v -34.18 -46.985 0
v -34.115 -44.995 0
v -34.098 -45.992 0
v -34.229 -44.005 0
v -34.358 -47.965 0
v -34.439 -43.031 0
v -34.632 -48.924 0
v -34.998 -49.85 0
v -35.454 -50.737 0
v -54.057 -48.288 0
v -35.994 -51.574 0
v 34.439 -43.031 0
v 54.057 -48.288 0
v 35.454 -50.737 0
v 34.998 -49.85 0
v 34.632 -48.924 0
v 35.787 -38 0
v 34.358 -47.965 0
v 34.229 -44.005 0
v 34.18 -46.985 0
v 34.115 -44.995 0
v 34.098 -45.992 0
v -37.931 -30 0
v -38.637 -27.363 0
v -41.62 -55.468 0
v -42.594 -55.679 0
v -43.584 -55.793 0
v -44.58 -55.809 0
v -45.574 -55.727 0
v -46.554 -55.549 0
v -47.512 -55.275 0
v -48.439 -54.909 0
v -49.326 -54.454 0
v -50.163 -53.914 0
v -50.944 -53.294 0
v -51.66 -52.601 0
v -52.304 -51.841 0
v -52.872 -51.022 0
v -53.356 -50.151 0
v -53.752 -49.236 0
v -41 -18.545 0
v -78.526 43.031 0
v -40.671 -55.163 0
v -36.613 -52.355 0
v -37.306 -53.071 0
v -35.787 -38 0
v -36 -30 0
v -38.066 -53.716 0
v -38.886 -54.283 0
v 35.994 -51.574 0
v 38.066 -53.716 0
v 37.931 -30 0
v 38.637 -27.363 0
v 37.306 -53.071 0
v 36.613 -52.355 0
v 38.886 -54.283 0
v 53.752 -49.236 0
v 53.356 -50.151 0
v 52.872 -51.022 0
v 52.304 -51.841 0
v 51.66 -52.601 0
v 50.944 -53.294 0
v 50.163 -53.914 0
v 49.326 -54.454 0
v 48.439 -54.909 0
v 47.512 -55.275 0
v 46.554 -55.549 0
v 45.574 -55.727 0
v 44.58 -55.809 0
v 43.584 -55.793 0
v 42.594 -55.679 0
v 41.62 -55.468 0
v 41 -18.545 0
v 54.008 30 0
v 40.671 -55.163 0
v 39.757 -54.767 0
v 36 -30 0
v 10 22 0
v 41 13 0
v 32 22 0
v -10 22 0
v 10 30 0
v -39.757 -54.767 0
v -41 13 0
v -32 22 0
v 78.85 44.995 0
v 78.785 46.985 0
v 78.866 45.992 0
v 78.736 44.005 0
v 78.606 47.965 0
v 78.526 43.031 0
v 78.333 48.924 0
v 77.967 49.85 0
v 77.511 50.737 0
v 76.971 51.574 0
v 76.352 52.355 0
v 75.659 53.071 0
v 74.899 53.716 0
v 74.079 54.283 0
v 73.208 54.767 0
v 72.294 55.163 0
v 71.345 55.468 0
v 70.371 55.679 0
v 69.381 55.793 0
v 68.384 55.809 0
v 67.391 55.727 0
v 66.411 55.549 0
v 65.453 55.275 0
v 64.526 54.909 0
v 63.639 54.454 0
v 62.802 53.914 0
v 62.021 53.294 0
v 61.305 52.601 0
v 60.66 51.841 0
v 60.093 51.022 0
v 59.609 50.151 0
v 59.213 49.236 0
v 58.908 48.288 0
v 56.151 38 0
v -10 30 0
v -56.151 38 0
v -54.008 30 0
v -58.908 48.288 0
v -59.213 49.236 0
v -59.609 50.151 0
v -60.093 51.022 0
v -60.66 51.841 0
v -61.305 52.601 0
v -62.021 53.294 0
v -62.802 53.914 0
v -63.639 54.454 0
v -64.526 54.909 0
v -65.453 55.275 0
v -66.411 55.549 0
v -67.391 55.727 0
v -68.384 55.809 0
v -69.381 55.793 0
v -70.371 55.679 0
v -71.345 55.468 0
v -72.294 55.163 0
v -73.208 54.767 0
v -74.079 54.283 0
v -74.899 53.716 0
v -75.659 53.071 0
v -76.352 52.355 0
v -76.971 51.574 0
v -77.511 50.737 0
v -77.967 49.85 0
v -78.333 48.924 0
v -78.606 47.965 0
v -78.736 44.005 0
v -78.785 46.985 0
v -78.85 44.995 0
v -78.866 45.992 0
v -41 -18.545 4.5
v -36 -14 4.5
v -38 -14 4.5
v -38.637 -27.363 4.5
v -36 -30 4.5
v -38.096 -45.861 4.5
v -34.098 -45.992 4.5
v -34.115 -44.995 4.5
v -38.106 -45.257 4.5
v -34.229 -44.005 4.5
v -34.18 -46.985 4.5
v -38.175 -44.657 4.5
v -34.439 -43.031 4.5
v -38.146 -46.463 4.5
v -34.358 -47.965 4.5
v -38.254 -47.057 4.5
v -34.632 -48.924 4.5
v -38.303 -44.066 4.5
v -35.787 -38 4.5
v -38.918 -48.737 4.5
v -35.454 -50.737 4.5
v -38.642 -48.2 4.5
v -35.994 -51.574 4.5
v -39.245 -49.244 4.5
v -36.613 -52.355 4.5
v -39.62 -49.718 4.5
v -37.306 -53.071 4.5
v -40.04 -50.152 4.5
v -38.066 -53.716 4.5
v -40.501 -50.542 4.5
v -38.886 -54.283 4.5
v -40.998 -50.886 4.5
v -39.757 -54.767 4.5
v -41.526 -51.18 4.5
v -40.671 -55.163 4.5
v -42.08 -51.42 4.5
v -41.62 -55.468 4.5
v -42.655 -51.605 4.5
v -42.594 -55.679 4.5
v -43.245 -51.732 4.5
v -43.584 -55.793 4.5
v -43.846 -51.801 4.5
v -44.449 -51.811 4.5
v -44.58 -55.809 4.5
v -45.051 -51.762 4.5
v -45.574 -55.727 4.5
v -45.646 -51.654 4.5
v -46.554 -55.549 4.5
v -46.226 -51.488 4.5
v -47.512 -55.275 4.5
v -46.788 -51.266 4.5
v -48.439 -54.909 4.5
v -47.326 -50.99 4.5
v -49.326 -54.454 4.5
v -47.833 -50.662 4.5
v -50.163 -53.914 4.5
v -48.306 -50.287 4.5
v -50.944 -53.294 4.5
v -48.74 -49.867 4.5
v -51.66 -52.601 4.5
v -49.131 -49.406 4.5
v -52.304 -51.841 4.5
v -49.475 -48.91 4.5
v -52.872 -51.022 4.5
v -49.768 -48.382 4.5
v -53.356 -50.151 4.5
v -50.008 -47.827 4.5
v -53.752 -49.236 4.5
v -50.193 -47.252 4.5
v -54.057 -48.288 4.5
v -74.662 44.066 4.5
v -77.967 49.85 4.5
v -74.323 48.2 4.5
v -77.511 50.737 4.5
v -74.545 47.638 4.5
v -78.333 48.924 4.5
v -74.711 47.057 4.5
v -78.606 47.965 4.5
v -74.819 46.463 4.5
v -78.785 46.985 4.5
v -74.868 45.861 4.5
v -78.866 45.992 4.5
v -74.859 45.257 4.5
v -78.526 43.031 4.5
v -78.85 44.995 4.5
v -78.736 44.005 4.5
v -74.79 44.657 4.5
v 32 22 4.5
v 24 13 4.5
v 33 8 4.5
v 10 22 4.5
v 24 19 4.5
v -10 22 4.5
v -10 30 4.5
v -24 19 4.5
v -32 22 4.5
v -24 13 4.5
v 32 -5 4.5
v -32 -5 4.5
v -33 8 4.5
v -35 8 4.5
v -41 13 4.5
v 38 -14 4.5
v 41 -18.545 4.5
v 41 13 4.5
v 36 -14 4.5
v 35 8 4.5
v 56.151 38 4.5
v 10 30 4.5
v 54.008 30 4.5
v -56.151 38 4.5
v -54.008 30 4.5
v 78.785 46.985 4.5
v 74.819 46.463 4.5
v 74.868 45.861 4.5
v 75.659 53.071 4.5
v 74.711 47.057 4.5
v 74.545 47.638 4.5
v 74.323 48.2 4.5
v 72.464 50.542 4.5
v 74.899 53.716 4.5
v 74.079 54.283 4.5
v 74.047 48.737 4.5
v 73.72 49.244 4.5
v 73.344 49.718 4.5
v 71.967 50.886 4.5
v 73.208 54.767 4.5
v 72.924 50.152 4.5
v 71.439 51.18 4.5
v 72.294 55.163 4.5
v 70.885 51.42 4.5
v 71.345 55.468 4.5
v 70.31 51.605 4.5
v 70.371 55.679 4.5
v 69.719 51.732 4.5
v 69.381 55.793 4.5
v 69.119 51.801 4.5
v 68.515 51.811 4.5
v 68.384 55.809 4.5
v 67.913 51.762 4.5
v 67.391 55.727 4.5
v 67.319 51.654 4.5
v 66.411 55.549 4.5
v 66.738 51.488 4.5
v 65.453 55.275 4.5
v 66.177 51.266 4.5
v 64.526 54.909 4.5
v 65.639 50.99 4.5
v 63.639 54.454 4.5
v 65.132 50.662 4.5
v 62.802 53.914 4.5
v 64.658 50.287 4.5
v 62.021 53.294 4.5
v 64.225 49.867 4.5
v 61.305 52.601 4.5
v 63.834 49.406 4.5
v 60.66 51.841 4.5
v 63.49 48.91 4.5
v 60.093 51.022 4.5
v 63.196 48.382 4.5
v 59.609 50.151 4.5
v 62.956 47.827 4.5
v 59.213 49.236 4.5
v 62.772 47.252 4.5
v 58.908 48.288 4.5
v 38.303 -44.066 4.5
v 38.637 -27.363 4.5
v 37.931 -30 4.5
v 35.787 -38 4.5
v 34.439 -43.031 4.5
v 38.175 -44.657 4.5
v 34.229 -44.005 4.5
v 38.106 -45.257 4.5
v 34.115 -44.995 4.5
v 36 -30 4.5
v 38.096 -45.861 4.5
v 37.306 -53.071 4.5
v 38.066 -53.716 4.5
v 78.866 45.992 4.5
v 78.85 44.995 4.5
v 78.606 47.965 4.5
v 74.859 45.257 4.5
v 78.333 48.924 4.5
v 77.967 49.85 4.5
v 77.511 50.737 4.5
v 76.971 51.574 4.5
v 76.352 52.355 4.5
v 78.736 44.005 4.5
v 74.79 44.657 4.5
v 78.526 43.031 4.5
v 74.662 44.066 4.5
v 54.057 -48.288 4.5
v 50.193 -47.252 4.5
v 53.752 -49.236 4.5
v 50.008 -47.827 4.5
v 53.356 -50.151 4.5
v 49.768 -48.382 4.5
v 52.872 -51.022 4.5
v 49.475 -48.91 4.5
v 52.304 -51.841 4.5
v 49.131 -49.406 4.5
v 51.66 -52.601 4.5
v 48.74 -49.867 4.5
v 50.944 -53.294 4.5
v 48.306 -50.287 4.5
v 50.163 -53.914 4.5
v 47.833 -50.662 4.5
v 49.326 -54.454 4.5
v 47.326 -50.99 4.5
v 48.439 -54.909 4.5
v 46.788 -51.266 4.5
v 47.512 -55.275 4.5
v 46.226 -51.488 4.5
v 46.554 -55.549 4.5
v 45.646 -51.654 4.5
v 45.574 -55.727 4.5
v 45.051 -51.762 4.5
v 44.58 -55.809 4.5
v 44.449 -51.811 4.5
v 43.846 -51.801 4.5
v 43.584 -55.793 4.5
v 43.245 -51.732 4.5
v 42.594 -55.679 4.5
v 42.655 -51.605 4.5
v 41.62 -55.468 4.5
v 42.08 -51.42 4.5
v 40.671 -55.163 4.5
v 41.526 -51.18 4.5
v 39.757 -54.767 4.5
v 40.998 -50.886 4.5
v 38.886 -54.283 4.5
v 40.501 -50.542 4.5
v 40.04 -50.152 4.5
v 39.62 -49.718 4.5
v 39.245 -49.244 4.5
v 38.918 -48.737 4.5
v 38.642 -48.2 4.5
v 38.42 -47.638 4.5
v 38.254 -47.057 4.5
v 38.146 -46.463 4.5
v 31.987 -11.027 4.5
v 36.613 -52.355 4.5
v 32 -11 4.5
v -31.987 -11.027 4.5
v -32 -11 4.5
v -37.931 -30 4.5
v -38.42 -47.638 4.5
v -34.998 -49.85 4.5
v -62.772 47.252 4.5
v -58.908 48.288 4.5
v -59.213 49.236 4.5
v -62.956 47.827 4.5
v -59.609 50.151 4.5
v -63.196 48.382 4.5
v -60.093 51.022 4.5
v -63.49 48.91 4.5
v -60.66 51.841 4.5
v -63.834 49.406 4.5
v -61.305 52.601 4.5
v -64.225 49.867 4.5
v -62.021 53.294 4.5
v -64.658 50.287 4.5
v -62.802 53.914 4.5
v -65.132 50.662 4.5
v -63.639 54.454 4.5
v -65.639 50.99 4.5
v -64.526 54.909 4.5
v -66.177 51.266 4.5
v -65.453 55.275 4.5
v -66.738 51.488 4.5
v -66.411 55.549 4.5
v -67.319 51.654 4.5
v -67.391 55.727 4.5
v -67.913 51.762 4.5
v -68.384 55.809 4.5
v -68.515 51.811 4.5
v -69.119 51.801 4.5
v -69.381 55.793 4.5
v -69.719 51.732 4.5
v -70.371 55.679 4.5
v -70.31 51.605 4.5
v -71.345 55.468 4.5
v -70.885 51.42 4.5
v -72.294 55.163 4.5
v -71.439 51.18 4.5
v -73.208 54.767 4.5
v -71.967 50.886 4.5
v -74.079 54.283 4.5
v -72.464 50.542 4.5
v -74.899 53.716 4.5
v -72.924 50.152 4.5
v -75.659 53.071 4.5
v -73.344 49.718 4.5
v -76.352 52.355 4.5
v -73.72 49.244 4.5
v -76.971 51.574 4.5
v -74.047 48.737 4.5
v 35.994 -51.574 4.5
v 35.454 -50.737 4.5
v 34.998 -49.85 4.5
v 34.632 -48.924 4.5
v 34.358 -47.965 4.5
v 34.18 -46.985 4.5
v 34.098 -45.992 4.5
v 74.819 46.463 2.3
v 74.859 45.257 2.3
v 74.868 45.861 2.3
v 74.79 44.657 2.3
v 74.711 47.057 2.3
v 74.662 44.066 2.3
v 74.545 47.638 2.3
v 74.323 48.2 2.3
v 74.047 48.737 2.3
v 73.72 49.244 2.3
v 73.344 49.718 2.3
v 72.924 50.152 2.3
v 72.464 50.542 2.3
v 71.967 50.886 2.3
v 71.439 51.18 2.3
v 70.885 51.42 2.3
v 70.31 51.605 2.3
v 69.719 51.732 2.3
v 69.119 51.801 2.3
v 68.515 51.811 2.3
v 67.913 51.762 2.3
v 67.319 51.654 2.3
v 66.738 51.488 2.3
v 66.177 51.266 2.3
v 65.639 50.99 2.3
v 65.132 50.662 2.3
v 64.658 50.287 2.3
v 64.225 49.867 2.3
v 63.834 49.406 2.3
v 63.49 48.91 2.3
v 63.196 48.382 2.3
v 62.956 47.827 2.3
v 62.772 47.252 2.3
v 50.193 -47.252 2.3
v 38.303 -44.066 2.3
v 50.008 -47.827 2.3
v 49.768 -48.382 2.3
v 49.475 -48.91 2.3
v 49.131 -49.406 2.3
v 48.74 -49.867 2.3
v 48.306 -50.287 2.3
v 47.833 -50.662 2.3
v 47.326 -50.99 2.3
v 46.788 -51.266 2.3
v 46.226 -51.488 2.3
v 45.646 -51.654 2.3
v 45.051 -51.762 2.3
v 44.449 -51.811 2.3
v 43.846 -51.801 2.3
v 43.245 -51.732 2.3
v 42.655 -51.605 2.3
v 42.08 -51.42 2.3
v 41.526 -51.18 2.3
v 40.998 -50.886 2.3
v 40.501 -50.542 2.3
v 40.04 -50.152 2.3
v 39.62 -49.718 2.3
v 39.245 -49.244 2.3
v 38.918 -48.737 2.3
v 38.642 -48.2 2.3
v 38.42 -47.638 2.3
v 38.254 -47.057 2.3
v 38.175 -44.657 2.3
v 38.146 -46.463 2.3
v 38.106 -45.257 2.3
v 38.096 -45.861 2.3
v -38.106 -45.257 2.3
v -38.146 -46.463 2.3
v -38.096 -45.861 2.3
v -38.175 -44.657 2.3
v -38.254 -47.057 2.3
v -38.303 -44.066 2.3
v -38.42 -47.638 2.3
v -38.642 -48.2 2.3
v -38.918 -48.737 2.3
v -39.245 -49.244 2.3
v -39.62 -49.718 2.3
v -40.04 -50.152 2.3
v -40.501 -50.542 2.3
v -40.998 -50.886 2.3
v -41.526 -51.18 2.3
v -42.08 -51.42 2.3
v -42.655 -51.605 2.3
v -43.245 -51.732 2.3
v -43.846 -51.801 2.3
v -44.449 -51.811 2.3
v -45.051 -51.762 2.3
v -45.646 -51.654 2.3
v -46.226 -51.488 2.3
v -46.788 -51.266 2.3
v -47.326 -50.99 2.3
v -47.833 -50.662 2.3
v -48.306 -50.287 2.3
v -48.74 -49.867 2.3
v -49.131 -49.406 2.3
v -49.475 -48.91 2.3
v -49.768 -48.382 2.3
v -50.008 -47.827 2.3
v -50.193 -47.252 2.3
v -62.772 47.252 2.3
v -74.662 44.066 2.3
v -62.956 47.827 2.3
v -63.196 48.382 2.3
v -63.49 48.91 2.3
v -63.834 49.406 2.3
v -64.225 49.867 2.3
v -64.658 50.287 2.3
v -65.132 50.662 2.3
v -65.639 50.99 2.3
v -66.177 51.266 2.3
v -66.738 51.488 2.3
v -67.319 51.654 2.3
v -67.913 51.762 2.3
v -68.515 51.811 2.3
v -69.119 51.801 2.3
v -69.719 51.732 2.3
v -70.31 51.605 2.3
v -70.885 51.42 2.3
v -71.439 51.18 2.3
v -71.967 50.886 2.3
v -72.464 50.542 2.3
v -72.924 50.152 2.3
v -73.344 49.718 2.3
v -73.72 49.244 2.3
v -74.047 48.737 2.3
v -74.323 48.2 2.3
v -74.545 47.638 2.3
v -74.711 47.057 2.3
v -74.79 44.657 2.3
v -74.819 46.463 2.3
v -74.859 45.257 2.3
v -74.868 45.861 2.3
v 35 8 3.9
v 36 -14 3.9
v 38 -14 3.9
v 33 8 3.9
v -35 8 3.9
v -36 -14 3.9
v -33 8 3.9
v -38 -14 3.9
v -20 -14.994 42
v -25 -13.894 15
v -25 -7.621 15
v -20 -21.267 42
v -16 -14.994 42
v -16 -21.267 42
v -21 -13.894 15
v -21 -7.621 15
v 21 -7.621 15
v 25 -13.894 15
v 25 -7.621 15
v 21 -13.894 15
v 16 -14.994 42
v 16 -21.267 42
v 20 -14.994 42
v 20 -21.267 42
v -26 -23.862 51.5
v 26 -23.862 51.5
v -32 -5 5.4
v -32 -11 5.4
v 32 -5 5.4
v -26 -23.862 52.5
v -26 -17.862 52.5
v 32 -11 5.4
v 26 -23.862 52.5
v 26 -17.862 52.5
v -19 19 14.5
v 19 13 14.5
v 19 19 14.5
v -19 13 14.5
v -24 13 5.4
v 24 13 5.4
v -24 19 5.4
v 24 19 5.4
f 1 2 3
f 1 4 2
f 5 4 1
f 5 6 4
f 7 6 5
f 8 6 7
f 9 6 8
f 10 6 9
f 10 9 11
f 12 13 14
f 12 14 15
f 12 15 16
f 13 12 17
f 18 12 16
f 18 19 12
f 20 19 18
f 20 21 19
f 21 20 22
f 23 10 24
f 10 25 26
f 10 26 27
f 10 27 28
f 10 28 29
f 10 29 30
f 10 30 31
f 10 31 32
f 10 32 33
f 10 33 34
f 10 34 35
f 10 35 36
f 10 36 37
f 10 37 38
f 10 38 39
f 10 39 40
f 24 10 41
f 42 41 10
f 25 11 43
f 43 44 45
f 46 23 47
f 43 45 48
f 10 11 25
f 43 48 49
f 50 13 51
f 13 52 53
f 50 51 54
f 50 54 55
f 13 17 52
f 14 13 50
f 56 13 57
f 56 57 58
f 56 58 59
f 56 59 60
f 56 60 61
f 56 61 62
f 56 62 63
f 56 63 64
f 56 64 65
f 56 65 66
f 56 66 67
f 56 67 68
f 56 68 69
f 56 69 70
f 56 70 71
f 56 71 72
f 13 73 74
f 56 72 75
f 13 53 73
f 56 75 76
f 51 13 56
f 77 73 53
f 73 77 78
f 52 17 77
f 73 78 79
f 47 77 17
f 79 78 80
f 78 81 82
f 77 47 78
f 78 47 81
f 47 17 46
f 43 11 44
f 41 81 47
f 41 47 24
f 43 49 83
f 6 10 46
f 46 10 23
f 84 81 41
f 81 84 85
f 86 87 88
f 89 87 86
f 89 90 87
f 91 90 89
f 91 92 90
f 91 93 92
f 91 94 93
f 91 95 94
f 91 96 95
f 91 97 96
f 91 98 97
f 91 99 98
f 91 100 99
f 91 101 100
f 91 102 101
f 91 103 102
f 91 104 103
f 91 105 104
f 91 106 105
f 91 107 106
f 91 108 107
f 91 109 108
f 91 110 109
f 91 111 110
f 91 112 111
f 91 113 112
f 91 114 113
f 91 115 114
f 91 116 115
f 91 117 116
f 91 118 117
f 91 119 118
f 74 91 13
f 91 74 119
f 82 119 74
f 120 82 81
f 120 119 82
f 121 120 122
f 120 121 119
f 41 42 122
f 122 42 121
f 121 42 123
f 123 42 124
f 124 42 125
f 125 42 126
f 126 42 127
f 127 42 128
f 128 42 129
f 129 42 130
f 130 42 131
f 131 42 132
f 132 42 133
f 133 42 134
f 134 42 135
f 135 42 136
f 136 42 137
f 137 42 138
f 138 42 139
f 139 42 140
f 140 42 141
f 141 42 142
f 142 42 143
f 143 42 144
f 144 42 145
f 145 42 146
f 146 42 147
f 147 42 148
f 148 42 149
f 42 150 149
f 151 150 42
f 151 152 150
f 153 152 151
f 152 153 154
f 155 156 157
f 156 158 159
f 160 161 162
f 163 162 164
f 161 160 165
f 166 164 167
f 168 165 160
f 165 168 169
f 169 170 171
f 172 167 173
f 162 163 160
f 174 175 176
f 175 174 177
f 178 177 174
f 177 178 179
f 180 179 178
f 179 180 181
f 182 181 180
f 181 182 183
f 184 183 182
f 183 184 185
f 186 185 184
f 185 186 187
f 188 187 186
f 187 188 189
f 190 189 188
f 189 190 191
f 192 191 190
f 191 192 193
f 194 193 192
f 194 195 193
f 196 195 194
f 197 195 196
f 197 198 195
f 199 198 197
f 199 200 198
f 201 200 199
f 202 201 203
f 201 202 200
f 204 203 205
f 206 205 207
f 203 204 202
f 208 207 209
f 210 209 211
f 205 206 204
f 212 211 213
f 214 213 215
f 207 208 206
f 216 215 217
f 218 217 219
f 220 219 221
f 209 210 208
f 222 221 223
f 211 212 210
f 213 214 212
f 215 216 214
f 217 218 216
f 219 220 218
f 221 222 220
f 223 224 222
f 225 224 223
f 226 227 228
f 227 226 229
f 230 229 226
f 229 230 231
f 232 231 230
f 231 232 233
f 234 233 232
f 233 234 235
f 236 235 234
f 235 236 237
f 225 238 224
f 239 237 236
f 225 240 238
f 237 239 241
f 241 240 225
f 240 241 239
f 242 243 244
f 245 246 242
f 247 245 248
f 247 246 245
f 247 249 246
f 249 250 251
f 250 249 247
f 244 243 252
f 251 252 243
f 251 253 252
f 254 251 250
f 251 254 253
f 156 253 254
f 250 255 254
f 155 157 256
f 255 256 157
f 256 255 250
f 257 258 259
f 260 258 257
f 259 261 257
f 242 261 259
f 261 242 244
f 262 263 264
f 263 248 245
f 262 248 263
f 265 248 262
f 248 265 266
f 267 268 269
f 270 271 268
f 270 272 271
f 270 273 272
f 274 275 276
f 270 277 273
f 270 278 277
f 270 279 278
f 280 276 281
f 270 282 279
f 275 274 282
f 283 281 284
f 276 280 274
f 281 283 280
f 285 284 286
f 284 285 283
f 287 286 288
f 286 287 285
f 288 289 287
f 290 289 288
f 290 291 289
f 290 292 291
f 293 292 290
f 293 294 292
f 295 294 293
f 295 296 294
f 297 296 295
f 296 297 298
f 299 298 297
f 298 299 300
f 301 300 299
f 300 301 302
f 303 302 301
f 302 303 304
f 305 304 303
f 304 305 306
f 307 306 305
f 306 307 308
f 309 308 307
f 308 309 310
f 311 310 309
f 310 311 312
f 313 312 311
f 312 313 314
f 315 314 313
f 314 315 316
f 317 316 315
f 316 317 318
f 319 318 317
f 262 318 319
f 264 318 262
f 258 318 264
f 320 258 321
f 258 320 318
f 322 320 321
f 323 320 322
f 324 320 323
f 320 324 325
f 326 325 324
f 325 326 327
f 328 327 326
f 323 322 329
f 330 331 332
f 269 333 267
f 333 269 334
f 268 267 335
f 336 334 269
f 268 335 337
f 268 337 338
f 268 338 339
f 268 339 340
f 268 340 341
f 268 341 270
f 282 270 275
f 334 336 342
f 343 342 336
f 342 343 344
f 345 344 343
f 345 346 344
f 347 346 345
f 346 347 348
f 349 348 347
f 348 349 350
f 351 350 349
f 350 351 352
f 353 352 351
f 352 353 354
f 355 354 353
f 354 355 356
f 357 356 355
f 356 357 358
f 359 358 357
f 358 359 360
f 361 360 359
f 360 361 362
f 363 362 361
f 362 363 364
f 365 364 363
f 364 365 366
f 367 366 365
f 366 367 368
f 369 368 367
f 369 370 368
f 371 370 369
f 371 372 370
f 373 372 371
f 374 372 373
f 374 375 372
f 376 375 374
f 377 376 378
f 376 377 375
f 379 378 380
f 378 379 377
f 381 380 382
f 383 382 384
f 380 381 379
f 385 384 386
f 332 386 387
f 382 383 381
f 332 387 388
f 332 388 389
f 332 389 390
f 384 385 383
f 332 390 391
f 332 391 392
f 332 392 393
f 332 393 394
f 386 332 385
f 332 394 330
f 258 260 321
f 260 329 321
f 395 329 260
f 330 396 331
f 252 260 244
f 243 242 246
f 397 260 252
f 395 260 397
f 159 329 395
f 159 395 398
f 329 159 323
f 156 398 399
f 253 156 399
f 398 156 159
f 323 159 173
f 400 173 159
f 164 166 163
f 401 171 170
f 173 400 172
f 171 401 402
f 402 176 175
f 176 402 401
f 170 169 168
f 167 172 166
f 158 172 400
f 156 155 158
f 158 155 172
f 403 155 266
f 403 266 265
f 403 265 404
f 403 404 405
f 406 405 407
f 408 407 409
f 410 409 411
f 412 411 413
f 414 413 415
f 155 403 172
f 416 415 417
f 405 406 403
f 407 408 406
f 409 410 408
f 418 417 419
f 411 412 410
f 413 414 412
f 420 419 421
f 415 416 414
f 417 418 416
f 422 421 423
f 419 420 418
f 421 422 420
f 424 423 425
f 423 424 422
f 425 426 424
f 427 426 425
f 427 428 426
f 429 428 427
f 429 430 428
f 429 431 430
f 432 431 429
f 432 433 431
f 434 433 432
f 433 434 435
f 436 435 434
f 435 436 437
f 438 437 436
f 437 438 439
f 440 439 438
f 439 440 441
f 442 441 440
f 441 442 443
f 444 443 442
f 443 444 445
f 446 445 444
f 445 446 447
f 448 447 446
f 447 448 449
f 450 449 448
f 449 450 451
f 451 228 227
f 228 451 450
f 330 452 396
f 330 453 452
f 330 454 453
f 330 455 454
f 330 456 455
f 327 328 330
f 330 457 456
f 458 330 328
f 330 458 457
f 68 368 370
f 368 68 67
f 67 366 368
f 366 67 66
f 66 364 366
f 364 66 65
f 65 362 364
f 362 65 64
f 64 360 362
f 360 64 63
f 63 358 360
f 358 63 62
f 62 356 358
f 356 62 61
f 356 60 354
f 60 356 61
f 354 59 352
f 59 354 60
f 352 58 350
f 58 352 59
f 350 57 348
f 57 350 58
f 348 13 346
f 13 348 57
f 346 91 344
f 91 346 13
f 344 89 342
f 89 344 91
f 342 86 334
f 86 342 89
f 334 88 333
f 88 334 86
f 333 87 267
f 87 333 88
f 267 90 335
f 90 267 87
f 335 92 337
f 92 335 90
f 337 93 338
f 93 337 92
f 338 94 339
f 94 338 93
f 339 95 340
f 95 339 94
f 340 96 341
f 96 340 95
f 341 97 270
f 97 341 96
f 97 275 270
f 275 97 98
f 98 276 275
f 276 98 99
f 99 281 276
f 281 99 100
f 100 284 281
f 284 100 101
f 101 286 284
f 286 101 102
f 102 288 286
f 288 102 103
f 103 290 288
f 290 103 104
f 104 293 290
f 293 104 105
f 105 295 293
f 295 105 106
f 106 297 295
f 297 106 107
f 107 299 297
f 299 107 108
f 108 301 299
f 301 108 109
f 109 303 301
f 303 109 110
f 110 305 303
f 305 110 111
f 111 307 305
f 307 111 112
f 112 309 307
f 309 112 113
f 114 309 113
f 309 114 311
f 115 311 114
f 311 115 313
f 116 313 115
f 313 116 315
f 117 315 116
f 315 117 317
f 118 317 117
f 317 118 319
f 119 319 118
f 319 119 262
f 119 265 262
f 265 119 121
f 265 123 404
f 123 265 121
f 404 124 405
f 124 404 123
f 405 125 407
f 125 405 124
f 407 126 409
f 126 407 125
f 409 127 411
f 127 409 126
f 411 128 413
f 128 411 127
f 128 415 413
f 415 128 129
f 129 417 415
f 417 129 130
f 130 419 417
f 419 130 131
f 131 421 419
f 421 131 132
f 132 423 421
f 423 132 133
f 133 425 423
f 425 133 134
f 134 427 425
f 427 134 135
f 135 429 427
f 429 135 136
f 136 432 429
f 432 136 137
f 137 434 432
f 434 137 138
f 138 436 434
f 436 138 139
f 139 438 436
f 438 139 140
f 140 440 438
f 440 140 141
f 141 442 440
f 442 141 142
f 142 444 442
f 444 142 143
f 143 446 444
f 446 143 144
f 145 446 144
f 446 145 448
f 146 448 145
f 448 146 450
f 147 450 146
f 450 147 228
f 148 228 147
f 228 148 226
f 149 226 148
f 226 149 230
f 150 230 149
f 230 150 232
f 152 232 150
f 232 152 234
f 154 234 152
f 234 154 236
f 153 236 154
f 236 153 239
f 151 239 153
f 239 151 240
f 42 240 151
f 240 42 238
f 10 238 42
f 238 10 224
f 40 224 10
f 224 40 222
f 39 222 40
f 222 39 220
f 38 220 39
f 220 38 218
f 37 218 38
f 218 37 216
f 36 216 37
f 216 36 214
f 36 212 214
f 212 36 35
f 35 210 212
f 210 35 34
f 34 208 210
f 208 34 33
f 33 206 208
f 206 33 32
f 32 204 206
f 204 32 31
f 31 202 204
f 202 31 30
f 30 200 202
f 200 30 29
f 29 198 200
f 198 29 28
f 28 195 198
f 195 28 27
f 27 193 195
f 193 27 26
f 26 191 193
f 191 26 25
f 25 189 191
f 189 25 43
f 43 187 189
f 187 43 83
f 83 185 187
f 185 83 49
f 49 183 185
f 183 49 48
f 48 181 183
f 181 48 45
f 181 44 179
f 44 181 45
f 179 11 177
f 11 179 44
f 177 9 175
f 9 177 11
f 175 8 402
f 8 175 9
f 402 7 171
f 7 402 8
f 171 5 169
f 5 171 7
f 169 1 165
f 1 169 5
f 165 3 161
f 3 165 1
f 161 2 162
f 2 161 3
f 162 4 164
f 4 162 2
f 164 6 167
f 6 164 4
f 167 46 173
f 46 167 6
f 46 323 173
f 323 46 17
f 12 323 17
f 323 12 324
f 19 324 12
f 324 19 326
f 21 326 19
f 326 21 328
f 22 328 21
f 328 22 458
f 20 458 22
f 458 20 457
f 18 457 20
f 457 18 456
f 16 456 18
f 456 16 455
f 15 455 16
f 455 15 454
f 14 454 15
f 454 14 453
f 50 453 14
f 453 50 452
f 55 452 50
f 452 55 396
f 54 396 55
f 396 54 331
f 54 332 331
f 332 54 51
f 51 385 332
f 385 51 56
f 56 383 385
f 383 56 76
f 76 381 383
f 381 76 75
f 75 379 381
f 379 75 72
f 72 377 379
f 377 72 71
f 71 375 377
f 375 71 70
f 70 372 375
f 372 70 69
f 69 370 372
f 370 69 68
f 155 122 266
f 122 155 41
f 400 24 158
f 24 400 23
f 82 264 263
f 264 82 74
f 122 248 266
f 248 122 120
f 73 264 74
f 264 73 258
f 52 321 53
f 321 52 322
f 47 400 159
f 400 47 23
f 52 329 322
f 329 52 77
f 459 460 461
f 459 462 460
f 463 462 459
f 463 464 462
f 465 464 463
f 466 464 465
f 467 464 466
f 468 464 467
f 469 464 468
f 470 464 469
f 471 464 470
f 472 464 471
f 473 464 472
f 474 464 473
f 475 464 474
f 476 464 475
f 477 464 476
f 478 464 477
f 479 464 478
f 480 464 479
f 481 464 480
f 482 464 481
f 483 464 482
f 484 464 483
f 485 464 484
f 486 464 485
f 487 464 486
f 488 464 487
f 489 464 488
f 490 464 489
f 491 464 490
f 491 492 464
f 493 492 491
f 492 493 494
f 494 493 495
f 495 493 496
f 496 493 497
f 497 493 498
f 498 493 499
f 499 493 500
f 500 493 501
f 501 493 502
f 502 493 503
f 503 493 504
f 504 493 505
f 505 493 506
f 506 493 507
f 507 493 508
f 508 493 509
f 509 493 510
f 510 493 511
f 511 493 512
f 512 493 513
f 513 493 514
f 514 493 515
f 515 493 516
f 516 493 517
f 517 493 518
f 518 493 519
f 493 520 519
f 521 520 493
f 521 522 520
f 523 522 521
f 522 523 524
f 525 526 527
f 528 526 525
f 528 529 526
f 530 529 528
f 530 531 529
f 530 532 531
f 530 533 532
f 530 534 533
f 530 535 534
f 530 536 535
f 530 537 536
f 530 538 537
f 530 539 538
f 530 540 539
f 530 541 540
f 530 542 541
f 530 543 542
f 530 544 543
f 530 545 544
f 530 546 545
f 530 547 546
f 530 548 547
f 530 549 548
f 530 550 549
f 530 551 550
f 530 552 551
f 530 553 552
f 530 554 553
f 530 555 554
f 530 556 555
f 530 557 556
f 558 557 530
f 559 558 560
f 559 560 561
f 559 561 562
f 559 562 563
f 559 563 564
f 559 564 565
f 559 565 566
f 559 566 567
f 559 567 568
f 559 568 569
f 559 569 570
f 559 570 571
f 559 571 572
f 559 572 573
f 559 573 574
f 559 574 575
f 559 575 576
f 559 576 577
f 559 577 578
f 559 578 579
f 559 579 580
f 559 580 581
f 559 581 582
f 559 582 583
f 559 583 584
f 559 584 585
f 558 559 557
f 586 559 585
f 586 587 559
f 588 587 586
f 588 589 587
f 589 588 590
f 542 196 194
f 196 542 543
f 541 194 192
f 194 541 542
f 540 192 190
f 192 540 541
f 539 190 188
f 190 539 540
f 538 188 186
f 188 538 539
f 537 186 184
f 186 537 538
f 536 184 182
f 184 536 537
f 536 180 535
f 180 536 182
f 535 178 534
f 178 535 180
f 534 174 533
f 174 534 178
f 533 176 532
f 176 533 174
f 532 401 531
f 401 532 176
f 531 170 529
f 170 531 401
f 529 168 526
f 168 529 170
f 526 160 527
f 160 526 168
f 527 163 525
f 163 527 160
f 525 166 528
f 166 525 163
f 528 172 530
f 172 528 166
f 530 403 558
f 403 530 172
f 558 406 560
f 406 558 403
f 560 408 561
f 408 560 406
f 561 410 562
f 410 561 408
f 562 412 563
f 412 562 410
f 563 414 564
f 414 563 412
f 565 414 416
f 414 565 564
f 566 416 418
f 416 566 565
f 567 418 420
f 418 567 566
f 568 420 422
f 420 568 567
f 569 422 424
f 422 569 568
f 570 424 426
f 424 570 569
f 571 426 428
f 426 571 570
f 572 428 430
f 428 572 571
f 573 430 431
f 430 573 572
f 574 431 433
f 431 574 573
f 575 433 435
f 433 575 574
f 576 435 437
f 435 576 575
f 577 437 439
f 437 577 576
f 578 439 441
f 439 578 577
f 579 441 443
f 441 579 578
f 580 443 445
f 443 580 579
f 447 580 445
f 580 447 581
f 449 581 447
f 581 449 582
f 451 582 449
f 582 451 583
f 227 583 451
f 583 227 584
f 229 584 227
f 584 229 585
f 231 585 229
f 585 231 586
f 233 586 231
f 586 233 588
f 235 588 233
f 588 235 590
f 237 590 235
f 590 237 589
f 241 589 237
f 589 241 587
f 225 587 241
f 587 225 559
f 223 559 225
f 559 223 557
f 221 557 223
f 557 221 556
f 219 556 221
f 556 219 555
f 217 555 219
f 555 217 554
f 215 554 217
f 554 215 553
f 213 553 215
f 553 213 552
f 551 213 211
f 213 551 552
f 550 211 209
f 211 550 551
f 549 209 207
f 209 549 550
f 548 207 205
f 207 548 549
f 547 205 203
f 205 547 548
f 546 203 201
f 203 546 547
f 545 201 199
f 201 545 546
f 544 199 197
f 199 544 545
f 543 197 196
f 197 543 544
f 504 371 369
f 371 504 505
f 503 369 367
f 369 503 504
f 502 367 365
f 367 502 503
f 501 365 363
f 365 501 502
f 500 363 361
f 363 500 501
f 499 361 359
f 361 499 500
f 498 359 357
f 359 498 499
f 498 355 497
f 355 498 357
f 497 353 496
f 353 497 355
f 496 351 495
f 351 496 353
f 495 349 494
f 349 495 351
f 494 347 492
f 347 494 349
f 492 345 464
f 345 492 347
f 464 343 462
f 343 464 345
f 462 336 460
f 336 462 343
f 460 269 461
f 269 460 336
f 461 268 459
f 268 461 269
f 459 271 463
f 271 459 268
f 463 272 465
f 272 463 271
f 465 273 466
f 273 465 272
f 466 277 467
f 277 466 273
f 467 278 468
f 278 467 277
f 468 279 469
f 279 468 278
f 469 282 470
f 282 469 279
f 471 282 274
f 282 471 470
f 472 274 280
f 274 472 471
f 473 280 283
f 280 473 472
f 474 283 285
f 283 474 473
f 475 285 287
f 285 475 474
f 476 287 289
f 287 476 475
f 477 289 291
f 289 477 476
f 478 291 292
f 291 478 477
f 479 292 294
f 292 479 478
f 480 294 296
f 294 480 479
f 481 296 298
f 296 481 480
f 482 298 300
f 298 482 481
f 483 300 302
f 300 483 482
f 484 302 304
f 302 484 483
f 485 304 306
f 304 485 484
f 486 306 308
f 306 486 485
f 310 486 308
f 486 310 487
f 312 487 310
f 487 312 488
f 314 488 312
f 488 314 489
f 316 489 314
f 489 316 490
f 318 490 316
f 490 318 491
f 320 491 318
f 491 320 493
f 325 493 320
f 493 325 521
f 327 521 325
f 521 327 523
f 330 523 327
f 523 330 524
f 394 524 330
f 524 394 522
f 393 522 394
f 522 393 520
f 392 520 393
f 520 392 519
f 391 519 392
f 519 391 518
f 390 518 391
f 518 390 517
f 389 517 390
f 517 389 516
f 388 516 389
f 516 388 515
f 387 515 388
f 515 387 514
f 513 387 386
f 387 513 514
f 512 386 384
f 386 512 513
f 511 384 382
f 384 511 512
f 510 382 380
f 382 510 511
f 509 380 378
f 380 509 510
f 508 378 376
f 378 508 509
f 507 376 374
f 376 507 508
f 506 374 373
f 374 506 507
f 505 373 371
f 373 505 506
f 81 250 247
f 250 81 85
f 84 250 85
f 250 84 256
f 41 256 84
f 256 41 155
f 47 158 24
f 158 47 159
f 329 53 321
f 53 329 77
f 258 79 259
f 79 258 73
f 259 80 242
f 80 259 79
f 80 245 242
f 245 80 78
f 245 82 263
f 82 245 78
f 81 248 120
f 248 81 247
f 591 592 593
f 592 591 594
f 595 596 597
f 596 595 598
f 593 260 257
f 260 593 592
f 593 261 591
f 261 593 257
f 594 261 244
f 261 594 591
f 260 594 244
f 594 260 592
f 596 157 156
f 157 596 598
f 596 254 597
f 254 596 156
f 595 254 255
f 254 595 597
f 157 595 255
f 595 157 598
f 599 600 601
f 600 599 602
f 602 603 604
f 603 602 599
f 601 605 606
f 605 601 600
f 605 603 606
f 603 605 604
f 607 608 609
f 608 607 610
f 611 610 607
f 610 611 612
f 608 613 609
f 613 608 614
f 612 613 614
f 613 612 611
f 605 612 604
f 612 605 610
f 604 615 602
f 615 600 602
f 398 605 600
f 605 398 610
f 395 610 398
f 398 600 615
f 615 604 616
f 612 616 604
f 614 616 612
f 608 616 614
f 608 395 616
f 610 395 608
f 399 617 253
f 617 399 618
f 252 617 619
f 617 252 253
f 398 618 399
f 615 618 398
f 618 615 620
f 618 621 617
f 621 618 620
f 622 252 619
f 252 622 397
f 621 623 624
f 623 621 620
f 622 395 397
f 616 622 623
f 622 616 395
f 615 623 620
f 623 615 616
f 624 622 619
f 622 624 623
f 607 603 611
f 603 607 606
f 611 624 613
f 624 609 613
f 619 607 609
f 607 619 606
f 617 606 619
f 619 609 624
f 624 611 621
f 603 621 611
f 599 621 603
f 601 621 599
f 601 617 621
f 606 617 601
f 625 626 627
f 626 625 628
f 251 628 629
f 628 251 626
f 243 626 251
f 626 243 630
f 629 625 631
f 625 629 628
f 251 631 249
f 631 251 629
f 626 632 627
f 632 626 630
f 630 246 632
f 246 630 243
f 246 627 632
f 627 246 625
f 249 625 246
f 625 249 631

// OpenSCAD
// MoErgo Go60 Perch - V1.3
// Keyboard positioning base with a centered portrait phone cradle.
//
// Units: mm

// ---------- Measured OEM bottom bar ----------
bar_length = 106.43;
bar_width  = 11.89;

// ---------- Pocket fit ----------
clearance_each_side = 0.21;
pocket_length = bar_length + 2*clearance_each_side;  // 106.85
pocket_width  = bar_width  + 2*clearance_each_side;  // 12.31
pocket_depth  = 2.2;

// ---------- Printed structure ----------
base_thickness = 4.5;
pad_border = 4.0;
rail_width = 8.0;

// ---------- Phone cradle ----------
// The 18 mm slot leaves room for a phone up to 16 mm thick with its case.
phone_width = 82;
phone_slot_depth = 18;
phone_lip_width = 48;
phone_lip_top_width = 38;
phone_lip_thickness = 6;
phone_lip_height = 10;
phone_back_width = 64;
phone_back_top_width = 52;
phone_back_thickness = 6;
phone_back_height = 48;
phone_recline_deg = 15;

// ---------- Positioning ----------
splay_deg = 15;
near_inner_gap = 73.0;
phone_forward = 4.0;

// Crossbar Y locations
rear_rail_y  = 34;
front_rail_y = -34;

// ---------- Derived ----------
pad_length = pocket_length + 2*pad_border;
pad_width  = pocket_width  + 2*pad_border;

near_centerline_gap = near_inner_gap + pocket_width;

s = sin(splay_deg);
left_cx  = -near_centerline_gap/2 - s*pocket_length/2;
right_cx = -left_cx;

// 2D capsule, long axis along local Y
module capsule2d(len, wid) {
    r = wid/2;
    hull() {
        translate([0, -(len/2-r)]) circle(r=r, $fn=64);
        translate([0,  (len/2-r)]) circle(r=r, $fn=64);
    }
}

module pad2d(cx, ang) {
    translate([cx,0])
        rotate(ang)
            capsule2d(pad_length, pad_width);
}

module pocket2d(cx, ang) {
    translate([cx,0])
        rotate(ang)
            capsule2d(pocket_length, pocket_width);
}

// A deliberately over-long rail.
// It runs from the centerline of the left pad to the centerline of the right
// pad, guaranteeing substantial overlap with each angled side pad.
module rail2d(ypos) {
    rail_len = right_cx - left_cx;
    translate([(left_cx + right_cx)/2, ypos])
        square([rail_len, rail_width], center=true);
}

module perch_outline_2d() {
    union() {
        pad2d(left_cx,   splay_deg);
        pad2d(right_cx, -splay_deg);
        rail2d(rear_rail_y);
        rail2d(front_rail_y);
    }
}

module phone_cradle() {
    // Clipped deck corners echo the splayed keyboard pads. The deck joins
    // one rail, and the narrow stem joins the other.
    difference() {
        linear_extrude(height=base_thickness)
            union() {
                polygon([
                    [-phone_width/2+9, -18], [phone_width/2-9, -18],
                    [ phone_width/2, -9],   [phone_width/2, 25+phone_forward],
                    [ phone_width/2-9, 34+phone_forward],
                    [-phone_width/2+9, 34+phone_forward],
                    [-phone_width/2, 25+phone_forward],
                    [-phone_width/2, -9]
                ]);
                translate([-10, front_rail_y]) square([20, 20]);
            }

        // Shallow accents on the shoulders echo the angled backrest slots.
        translate([0, 0, base_thickness-0.6])
            linear_extrude(height=0.7)
                for (side = [-1, 1])
                    scale([side, 1])
                        polygon([[33, -4], [35, -4],
                                 [38, 18], [36, 18]]);
    }

    // Sloped shoulders give the shorter lip a lighter profile.
    hull() {
        translate([-phone_lip_width/2,
                   -phone_slot_depth/2-phone_lip_thickness,
                   base_thickness-0.1])
            cube([phone_lip_width, phone_lip_thickness, 1]);
        translate([-phone_lip_top_width/2,
                   -phone_slot_depth/2-phone_lip_thickness,
                   base_thickness+phone_lip_height-1])
            cube([phone_lip_top_width, phone_lip_thickness, 1]);
    }

    // The tapered backrest keeps a broad center panel for phone support.
    // Angled side slots add detail without weakening its outer edges.
    difference() {
        hull() {
            translate([-phone_back_width/2, phone_slot_depth/2,
                       base_thickness-0.1])
                cube([phone_back_width, phone_back_thickness, 1]);
            translate([-phone_back_top_width/2,
                       phone_slot_depth/2 + tan(phone_recline_deg)*phone_back_height,
                       base_thickness+phone_back_height-1])
                cube([phone_back_top_width, phone_back_thickness, 1]);
        }

        for (side = [-1, 1])
            scale([side, 1, 1])
                translate([0, 40, 0])
                    rotate([90, 0, 0])
                        linear_extrude(height=40)
                            polygon([
                                [-25, 15], [-21, 15],
                                [-16, 42], [-20, 42]
                            ]);
    }
}

union() {
    difference() {
        linear_extrude(height=base_thickness)
            perch_outline_2d();

        // Shallow locating pockets
        translate([0,0,base_thickness-pocket_depth])
            linear_extrude(height=pocket_depth+0.2) {
                pocket2d(left_cx,   splay_deg);
                pocket2d(right_cx, -splay_deg);
            }
    }
    // Face the phone toward the opposite side and bring it closer to the user.
    translate([0, phone_forward, 0])
        rotate([0, 0, 180]) phone_cradle();
}
